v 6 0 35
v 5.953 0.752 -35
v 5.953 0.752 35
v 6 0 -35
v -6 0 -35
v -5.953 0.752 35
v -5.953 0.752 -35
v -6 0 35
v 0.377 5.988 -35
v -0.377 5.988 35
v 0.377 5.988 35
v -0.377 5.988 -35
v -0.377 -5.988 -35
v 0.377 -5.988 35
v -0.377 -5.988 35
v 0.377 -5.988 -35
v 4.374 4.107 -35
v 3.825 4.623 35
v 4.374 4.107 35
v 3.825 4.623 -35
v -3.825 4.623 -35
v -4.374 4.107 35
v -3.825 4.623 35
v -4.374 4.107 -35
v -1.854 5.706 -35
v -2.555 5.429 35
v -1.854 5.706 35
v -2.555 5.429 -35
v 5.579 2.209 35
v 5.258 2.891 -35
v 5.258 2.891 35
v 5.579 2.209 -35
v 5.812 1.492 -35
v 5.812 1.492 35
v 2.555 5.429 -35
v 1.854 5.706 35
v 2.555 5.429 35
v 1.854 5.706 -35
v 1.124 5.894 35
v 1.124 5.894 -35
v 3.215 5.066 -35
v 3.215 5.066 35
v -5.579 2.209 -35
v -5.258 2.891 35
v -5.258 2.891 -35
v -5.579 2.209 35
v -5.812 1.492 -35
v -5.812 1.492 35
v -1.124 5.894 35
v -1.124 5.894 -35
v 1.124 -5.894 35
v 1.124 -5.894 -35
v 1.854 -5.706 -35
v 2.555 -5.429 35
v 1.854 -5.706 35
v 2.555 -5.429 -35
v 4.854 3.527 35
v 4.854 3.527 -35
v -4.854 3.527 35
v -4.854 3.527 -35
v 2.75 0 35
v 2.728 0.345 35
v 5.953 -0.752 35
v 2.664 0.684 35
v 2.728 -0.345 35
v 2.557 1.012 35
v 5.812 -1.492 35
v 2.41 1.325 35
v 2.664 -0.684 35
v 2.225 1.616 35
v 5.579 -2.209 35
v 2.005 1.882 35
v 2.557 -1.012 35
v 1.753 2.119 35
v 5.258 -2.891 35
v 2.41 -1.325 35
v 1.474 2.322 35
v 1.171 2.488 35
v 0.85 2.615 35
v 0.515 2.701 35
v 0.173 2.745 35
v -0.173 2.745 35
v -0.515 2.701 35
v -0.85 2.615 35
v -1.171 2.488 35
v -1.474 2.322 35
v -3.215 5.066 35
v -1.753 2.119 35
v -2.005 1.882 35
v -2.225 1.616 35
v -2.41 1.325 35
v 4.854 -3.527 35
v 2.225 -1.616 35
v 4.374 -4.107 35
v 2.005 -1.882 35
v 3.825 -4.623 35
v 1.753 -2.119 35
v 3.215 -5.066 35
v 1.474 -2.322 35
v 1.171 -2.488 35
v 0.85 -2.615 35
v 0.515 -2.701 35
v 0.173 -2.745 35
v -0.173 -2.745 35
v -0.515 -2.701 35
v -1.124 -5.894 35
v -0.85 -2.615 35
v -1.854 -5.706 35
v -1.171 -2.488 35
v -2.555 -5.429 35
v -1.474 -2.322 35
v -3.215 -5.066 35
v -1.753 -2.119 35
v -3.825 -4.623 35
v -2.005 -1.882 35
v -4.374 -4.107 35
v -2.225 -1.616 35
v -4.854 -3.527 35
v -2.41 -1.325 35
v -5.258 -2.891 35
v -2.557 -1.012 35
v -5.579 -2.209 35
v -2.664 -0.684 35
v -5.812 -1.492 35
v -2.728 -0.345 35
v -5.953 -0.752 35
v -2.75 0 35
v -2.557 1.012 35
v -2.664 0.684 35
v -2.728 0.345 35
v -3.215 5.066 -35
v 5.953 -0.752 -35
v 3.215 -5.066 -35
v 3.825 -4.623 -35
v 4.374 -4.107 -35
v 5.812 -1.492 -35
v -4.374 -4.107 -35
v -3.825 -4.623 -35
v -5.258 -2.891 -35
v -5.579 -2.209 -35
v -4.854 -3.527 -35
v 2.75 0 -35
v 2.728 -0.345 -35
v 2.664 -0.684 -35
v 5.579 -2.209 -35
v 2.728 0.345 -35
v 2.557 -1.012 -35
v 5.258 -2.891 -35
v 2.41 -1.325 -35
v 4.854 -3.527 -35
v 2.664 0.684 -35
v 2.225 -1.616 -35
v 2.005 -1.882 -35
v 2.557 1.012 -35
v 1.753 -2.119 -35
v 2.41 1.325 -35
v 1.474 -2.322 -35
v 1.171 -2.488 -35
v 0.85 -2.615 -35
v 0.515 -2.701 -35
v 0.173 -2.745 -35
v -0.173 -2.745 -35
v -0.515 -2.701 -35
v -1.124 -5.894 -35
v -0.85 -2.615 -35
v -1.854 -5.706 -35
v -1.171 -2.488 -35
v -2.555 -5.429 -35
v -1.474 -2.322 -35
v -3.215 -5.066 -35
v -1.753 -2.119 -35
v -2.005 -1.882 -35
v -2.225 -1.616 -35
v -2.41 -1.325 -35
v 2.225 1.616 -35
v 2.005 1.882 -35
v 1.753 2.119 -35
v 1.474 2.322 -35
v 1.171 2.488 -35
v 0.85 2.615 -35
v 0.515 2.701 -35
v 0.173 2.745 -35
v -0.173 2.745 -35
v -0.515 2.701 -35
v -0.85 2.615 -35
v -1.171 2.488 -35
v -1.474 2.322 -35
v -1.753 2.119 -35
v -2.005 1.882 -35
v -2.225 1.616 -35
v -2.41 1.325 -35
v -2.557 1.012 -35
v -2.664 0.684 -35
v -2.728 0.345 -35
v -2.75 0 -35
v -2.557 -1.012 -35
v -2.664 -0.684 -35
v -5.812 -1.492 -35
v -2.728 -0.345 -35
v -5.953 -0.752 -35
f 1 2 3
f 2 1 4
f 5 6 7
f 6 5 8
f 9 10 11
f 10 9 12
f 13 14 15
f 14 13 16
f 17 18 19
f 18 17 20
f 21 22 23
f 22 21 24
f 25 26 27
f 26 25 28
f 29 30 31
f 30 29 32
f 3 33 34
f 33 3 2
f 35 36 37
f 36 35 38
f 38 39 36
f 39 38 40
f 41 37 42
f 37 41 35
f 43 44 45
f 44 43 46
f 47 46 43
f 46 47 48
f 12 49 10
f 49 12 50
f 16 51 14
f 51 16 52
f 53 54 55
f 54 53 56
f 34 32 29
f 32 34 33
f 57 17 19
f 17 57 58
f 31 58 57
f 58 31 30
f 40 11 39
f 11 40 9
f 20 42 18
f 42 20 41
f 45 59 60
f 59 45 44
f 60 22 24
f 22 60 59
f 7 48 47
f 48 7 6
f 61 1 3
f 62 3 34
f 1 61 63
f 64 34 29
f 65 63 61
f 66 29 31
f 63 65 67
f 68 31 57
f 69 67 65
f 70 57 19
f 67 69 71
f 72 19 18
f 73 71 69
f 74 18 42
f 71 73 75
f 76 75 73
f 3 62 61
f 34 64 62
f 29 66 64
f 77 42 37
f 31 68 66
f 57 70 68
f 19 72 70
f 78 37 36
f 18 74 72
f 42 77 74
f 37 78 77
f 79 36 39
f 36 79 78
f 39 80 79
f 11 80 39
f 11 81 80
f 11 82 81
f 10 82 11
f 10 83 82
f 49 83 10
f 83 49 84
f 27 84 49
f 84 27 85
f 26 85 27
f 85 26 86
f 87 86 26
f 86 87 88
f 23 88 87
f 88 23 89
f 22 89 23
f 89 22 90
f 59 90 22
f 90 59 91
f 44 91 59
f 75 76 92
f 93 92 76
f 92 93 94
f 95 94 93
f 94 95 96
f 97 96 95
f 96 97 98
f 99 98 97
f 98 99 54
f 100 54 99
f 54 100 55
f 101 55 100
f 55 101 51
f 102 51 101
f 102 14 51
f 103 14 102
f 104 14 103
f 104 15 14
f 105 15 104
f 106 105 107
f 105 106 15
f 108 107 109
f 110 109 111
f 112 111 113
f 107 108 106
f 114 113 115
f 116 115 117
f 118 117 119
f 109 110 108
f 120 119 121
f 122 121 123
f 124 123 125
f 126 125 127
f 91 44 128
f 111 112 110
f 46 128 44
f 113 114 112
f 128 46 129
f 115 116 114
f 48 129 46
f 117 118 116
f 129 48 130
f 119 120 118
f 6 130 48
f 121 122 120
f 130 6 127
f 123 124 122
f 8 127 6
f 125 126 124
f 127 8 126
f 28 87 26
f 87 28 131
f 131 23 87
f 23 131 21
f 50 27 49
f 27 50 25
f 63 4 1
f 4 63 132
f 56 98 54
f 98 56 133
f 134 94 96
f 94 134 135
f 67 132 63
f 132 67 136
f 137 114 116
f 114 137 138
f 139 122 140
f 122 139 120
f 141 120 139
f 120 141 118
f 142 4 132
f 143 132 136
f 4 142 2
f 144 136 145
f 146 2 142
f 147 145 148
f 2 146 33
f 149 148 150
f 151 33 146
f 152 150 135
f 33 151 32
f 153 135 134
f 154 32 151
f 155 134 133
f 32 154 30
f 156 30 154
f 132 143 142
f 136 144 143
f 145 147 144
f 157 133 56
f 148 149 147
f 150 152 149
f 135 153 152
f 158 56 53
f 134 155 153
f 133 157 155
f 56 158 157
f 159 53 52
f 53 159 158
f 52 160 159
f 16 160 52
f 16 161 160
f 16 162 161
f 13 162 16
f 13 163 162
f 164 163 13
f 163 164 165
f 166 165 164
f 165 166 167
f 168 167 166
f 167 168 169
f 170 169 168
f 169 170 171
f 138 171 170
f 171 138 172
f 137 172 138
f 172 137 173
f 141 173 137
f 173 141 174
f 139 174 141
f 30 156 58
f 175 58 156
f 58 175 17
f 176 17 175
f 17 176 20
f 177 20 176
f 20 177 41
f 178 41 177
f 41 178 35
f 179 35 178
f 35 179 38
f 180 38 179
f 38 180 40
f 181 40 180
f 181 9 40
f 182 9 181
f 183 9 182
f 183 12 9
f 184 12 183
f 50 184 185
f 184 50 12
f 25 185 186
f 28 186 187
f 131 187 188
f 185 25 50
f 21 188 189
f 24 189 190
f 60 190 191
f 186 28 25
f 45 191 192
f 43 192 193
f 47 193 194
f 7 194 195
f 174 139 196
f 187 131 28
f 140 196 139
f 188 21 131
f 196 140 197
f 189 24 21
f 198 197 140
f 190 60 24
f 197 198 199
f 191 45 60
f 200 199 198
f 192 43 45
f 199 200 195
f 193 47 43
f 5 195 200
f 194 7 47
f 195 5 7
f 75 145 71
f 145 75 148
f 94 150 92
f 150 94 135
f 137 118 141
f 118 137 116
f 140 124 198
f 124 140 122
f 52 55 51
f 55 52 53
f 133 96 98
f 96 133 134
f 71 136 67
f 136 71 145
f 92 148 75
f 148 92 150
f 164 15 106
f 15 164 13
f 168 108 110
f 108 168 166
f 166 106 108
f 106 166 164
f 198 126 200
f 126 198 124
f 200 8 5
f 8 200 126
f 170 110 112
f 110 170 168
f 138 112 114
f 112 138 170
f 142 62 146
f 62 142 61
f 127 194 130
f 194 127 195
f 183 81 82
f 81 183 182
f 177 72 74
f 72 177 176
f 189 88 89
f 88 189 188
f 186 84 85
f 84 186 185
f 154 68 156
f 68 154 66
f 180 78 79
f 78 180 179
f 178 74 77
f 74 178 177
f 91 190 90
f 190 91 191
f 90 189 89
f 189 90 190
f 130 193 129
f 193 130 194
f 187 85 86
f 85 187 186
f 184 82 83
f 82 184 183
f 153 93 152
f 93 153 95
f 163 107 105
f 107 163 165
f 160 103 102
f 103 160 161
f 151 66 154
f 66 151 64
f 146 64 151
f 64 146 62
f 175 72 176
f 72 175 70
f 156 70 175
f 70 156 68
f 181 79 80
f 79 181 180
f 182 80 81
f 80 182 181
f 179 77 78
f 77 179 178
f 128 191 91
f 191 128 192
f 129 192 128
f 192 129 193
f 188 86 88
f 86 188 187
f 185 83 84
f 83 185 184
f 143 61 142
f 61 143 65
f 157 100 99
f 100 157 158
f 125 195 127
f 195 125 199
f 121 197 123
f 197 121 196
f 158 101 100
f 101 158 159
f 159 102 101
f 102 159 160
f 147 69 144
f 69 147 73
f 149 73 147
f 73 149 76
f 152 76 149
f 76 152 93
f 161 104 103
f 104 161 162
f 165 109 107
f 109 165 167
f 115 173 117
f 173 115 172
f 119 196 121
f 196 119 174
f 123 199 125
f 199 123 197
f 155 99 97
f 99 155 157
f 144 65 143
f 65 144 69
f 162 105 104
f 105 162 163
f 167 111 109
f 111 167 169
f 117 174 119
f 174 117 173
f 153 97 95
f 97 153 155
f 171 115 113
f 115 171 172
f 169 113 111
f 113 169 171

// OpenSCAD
$fn = 50;


difference() {
	union() {
		translate(v = [0, 0, -35.0000000000]) {
			cylinder(h = 70, r = 6.0000000000);
		}
	}
	union() {
		translate(v = [0, 0, -100.0000000000]) {
			cylinder(h = 200, r = 2.7500000000);
		}
	}
}
